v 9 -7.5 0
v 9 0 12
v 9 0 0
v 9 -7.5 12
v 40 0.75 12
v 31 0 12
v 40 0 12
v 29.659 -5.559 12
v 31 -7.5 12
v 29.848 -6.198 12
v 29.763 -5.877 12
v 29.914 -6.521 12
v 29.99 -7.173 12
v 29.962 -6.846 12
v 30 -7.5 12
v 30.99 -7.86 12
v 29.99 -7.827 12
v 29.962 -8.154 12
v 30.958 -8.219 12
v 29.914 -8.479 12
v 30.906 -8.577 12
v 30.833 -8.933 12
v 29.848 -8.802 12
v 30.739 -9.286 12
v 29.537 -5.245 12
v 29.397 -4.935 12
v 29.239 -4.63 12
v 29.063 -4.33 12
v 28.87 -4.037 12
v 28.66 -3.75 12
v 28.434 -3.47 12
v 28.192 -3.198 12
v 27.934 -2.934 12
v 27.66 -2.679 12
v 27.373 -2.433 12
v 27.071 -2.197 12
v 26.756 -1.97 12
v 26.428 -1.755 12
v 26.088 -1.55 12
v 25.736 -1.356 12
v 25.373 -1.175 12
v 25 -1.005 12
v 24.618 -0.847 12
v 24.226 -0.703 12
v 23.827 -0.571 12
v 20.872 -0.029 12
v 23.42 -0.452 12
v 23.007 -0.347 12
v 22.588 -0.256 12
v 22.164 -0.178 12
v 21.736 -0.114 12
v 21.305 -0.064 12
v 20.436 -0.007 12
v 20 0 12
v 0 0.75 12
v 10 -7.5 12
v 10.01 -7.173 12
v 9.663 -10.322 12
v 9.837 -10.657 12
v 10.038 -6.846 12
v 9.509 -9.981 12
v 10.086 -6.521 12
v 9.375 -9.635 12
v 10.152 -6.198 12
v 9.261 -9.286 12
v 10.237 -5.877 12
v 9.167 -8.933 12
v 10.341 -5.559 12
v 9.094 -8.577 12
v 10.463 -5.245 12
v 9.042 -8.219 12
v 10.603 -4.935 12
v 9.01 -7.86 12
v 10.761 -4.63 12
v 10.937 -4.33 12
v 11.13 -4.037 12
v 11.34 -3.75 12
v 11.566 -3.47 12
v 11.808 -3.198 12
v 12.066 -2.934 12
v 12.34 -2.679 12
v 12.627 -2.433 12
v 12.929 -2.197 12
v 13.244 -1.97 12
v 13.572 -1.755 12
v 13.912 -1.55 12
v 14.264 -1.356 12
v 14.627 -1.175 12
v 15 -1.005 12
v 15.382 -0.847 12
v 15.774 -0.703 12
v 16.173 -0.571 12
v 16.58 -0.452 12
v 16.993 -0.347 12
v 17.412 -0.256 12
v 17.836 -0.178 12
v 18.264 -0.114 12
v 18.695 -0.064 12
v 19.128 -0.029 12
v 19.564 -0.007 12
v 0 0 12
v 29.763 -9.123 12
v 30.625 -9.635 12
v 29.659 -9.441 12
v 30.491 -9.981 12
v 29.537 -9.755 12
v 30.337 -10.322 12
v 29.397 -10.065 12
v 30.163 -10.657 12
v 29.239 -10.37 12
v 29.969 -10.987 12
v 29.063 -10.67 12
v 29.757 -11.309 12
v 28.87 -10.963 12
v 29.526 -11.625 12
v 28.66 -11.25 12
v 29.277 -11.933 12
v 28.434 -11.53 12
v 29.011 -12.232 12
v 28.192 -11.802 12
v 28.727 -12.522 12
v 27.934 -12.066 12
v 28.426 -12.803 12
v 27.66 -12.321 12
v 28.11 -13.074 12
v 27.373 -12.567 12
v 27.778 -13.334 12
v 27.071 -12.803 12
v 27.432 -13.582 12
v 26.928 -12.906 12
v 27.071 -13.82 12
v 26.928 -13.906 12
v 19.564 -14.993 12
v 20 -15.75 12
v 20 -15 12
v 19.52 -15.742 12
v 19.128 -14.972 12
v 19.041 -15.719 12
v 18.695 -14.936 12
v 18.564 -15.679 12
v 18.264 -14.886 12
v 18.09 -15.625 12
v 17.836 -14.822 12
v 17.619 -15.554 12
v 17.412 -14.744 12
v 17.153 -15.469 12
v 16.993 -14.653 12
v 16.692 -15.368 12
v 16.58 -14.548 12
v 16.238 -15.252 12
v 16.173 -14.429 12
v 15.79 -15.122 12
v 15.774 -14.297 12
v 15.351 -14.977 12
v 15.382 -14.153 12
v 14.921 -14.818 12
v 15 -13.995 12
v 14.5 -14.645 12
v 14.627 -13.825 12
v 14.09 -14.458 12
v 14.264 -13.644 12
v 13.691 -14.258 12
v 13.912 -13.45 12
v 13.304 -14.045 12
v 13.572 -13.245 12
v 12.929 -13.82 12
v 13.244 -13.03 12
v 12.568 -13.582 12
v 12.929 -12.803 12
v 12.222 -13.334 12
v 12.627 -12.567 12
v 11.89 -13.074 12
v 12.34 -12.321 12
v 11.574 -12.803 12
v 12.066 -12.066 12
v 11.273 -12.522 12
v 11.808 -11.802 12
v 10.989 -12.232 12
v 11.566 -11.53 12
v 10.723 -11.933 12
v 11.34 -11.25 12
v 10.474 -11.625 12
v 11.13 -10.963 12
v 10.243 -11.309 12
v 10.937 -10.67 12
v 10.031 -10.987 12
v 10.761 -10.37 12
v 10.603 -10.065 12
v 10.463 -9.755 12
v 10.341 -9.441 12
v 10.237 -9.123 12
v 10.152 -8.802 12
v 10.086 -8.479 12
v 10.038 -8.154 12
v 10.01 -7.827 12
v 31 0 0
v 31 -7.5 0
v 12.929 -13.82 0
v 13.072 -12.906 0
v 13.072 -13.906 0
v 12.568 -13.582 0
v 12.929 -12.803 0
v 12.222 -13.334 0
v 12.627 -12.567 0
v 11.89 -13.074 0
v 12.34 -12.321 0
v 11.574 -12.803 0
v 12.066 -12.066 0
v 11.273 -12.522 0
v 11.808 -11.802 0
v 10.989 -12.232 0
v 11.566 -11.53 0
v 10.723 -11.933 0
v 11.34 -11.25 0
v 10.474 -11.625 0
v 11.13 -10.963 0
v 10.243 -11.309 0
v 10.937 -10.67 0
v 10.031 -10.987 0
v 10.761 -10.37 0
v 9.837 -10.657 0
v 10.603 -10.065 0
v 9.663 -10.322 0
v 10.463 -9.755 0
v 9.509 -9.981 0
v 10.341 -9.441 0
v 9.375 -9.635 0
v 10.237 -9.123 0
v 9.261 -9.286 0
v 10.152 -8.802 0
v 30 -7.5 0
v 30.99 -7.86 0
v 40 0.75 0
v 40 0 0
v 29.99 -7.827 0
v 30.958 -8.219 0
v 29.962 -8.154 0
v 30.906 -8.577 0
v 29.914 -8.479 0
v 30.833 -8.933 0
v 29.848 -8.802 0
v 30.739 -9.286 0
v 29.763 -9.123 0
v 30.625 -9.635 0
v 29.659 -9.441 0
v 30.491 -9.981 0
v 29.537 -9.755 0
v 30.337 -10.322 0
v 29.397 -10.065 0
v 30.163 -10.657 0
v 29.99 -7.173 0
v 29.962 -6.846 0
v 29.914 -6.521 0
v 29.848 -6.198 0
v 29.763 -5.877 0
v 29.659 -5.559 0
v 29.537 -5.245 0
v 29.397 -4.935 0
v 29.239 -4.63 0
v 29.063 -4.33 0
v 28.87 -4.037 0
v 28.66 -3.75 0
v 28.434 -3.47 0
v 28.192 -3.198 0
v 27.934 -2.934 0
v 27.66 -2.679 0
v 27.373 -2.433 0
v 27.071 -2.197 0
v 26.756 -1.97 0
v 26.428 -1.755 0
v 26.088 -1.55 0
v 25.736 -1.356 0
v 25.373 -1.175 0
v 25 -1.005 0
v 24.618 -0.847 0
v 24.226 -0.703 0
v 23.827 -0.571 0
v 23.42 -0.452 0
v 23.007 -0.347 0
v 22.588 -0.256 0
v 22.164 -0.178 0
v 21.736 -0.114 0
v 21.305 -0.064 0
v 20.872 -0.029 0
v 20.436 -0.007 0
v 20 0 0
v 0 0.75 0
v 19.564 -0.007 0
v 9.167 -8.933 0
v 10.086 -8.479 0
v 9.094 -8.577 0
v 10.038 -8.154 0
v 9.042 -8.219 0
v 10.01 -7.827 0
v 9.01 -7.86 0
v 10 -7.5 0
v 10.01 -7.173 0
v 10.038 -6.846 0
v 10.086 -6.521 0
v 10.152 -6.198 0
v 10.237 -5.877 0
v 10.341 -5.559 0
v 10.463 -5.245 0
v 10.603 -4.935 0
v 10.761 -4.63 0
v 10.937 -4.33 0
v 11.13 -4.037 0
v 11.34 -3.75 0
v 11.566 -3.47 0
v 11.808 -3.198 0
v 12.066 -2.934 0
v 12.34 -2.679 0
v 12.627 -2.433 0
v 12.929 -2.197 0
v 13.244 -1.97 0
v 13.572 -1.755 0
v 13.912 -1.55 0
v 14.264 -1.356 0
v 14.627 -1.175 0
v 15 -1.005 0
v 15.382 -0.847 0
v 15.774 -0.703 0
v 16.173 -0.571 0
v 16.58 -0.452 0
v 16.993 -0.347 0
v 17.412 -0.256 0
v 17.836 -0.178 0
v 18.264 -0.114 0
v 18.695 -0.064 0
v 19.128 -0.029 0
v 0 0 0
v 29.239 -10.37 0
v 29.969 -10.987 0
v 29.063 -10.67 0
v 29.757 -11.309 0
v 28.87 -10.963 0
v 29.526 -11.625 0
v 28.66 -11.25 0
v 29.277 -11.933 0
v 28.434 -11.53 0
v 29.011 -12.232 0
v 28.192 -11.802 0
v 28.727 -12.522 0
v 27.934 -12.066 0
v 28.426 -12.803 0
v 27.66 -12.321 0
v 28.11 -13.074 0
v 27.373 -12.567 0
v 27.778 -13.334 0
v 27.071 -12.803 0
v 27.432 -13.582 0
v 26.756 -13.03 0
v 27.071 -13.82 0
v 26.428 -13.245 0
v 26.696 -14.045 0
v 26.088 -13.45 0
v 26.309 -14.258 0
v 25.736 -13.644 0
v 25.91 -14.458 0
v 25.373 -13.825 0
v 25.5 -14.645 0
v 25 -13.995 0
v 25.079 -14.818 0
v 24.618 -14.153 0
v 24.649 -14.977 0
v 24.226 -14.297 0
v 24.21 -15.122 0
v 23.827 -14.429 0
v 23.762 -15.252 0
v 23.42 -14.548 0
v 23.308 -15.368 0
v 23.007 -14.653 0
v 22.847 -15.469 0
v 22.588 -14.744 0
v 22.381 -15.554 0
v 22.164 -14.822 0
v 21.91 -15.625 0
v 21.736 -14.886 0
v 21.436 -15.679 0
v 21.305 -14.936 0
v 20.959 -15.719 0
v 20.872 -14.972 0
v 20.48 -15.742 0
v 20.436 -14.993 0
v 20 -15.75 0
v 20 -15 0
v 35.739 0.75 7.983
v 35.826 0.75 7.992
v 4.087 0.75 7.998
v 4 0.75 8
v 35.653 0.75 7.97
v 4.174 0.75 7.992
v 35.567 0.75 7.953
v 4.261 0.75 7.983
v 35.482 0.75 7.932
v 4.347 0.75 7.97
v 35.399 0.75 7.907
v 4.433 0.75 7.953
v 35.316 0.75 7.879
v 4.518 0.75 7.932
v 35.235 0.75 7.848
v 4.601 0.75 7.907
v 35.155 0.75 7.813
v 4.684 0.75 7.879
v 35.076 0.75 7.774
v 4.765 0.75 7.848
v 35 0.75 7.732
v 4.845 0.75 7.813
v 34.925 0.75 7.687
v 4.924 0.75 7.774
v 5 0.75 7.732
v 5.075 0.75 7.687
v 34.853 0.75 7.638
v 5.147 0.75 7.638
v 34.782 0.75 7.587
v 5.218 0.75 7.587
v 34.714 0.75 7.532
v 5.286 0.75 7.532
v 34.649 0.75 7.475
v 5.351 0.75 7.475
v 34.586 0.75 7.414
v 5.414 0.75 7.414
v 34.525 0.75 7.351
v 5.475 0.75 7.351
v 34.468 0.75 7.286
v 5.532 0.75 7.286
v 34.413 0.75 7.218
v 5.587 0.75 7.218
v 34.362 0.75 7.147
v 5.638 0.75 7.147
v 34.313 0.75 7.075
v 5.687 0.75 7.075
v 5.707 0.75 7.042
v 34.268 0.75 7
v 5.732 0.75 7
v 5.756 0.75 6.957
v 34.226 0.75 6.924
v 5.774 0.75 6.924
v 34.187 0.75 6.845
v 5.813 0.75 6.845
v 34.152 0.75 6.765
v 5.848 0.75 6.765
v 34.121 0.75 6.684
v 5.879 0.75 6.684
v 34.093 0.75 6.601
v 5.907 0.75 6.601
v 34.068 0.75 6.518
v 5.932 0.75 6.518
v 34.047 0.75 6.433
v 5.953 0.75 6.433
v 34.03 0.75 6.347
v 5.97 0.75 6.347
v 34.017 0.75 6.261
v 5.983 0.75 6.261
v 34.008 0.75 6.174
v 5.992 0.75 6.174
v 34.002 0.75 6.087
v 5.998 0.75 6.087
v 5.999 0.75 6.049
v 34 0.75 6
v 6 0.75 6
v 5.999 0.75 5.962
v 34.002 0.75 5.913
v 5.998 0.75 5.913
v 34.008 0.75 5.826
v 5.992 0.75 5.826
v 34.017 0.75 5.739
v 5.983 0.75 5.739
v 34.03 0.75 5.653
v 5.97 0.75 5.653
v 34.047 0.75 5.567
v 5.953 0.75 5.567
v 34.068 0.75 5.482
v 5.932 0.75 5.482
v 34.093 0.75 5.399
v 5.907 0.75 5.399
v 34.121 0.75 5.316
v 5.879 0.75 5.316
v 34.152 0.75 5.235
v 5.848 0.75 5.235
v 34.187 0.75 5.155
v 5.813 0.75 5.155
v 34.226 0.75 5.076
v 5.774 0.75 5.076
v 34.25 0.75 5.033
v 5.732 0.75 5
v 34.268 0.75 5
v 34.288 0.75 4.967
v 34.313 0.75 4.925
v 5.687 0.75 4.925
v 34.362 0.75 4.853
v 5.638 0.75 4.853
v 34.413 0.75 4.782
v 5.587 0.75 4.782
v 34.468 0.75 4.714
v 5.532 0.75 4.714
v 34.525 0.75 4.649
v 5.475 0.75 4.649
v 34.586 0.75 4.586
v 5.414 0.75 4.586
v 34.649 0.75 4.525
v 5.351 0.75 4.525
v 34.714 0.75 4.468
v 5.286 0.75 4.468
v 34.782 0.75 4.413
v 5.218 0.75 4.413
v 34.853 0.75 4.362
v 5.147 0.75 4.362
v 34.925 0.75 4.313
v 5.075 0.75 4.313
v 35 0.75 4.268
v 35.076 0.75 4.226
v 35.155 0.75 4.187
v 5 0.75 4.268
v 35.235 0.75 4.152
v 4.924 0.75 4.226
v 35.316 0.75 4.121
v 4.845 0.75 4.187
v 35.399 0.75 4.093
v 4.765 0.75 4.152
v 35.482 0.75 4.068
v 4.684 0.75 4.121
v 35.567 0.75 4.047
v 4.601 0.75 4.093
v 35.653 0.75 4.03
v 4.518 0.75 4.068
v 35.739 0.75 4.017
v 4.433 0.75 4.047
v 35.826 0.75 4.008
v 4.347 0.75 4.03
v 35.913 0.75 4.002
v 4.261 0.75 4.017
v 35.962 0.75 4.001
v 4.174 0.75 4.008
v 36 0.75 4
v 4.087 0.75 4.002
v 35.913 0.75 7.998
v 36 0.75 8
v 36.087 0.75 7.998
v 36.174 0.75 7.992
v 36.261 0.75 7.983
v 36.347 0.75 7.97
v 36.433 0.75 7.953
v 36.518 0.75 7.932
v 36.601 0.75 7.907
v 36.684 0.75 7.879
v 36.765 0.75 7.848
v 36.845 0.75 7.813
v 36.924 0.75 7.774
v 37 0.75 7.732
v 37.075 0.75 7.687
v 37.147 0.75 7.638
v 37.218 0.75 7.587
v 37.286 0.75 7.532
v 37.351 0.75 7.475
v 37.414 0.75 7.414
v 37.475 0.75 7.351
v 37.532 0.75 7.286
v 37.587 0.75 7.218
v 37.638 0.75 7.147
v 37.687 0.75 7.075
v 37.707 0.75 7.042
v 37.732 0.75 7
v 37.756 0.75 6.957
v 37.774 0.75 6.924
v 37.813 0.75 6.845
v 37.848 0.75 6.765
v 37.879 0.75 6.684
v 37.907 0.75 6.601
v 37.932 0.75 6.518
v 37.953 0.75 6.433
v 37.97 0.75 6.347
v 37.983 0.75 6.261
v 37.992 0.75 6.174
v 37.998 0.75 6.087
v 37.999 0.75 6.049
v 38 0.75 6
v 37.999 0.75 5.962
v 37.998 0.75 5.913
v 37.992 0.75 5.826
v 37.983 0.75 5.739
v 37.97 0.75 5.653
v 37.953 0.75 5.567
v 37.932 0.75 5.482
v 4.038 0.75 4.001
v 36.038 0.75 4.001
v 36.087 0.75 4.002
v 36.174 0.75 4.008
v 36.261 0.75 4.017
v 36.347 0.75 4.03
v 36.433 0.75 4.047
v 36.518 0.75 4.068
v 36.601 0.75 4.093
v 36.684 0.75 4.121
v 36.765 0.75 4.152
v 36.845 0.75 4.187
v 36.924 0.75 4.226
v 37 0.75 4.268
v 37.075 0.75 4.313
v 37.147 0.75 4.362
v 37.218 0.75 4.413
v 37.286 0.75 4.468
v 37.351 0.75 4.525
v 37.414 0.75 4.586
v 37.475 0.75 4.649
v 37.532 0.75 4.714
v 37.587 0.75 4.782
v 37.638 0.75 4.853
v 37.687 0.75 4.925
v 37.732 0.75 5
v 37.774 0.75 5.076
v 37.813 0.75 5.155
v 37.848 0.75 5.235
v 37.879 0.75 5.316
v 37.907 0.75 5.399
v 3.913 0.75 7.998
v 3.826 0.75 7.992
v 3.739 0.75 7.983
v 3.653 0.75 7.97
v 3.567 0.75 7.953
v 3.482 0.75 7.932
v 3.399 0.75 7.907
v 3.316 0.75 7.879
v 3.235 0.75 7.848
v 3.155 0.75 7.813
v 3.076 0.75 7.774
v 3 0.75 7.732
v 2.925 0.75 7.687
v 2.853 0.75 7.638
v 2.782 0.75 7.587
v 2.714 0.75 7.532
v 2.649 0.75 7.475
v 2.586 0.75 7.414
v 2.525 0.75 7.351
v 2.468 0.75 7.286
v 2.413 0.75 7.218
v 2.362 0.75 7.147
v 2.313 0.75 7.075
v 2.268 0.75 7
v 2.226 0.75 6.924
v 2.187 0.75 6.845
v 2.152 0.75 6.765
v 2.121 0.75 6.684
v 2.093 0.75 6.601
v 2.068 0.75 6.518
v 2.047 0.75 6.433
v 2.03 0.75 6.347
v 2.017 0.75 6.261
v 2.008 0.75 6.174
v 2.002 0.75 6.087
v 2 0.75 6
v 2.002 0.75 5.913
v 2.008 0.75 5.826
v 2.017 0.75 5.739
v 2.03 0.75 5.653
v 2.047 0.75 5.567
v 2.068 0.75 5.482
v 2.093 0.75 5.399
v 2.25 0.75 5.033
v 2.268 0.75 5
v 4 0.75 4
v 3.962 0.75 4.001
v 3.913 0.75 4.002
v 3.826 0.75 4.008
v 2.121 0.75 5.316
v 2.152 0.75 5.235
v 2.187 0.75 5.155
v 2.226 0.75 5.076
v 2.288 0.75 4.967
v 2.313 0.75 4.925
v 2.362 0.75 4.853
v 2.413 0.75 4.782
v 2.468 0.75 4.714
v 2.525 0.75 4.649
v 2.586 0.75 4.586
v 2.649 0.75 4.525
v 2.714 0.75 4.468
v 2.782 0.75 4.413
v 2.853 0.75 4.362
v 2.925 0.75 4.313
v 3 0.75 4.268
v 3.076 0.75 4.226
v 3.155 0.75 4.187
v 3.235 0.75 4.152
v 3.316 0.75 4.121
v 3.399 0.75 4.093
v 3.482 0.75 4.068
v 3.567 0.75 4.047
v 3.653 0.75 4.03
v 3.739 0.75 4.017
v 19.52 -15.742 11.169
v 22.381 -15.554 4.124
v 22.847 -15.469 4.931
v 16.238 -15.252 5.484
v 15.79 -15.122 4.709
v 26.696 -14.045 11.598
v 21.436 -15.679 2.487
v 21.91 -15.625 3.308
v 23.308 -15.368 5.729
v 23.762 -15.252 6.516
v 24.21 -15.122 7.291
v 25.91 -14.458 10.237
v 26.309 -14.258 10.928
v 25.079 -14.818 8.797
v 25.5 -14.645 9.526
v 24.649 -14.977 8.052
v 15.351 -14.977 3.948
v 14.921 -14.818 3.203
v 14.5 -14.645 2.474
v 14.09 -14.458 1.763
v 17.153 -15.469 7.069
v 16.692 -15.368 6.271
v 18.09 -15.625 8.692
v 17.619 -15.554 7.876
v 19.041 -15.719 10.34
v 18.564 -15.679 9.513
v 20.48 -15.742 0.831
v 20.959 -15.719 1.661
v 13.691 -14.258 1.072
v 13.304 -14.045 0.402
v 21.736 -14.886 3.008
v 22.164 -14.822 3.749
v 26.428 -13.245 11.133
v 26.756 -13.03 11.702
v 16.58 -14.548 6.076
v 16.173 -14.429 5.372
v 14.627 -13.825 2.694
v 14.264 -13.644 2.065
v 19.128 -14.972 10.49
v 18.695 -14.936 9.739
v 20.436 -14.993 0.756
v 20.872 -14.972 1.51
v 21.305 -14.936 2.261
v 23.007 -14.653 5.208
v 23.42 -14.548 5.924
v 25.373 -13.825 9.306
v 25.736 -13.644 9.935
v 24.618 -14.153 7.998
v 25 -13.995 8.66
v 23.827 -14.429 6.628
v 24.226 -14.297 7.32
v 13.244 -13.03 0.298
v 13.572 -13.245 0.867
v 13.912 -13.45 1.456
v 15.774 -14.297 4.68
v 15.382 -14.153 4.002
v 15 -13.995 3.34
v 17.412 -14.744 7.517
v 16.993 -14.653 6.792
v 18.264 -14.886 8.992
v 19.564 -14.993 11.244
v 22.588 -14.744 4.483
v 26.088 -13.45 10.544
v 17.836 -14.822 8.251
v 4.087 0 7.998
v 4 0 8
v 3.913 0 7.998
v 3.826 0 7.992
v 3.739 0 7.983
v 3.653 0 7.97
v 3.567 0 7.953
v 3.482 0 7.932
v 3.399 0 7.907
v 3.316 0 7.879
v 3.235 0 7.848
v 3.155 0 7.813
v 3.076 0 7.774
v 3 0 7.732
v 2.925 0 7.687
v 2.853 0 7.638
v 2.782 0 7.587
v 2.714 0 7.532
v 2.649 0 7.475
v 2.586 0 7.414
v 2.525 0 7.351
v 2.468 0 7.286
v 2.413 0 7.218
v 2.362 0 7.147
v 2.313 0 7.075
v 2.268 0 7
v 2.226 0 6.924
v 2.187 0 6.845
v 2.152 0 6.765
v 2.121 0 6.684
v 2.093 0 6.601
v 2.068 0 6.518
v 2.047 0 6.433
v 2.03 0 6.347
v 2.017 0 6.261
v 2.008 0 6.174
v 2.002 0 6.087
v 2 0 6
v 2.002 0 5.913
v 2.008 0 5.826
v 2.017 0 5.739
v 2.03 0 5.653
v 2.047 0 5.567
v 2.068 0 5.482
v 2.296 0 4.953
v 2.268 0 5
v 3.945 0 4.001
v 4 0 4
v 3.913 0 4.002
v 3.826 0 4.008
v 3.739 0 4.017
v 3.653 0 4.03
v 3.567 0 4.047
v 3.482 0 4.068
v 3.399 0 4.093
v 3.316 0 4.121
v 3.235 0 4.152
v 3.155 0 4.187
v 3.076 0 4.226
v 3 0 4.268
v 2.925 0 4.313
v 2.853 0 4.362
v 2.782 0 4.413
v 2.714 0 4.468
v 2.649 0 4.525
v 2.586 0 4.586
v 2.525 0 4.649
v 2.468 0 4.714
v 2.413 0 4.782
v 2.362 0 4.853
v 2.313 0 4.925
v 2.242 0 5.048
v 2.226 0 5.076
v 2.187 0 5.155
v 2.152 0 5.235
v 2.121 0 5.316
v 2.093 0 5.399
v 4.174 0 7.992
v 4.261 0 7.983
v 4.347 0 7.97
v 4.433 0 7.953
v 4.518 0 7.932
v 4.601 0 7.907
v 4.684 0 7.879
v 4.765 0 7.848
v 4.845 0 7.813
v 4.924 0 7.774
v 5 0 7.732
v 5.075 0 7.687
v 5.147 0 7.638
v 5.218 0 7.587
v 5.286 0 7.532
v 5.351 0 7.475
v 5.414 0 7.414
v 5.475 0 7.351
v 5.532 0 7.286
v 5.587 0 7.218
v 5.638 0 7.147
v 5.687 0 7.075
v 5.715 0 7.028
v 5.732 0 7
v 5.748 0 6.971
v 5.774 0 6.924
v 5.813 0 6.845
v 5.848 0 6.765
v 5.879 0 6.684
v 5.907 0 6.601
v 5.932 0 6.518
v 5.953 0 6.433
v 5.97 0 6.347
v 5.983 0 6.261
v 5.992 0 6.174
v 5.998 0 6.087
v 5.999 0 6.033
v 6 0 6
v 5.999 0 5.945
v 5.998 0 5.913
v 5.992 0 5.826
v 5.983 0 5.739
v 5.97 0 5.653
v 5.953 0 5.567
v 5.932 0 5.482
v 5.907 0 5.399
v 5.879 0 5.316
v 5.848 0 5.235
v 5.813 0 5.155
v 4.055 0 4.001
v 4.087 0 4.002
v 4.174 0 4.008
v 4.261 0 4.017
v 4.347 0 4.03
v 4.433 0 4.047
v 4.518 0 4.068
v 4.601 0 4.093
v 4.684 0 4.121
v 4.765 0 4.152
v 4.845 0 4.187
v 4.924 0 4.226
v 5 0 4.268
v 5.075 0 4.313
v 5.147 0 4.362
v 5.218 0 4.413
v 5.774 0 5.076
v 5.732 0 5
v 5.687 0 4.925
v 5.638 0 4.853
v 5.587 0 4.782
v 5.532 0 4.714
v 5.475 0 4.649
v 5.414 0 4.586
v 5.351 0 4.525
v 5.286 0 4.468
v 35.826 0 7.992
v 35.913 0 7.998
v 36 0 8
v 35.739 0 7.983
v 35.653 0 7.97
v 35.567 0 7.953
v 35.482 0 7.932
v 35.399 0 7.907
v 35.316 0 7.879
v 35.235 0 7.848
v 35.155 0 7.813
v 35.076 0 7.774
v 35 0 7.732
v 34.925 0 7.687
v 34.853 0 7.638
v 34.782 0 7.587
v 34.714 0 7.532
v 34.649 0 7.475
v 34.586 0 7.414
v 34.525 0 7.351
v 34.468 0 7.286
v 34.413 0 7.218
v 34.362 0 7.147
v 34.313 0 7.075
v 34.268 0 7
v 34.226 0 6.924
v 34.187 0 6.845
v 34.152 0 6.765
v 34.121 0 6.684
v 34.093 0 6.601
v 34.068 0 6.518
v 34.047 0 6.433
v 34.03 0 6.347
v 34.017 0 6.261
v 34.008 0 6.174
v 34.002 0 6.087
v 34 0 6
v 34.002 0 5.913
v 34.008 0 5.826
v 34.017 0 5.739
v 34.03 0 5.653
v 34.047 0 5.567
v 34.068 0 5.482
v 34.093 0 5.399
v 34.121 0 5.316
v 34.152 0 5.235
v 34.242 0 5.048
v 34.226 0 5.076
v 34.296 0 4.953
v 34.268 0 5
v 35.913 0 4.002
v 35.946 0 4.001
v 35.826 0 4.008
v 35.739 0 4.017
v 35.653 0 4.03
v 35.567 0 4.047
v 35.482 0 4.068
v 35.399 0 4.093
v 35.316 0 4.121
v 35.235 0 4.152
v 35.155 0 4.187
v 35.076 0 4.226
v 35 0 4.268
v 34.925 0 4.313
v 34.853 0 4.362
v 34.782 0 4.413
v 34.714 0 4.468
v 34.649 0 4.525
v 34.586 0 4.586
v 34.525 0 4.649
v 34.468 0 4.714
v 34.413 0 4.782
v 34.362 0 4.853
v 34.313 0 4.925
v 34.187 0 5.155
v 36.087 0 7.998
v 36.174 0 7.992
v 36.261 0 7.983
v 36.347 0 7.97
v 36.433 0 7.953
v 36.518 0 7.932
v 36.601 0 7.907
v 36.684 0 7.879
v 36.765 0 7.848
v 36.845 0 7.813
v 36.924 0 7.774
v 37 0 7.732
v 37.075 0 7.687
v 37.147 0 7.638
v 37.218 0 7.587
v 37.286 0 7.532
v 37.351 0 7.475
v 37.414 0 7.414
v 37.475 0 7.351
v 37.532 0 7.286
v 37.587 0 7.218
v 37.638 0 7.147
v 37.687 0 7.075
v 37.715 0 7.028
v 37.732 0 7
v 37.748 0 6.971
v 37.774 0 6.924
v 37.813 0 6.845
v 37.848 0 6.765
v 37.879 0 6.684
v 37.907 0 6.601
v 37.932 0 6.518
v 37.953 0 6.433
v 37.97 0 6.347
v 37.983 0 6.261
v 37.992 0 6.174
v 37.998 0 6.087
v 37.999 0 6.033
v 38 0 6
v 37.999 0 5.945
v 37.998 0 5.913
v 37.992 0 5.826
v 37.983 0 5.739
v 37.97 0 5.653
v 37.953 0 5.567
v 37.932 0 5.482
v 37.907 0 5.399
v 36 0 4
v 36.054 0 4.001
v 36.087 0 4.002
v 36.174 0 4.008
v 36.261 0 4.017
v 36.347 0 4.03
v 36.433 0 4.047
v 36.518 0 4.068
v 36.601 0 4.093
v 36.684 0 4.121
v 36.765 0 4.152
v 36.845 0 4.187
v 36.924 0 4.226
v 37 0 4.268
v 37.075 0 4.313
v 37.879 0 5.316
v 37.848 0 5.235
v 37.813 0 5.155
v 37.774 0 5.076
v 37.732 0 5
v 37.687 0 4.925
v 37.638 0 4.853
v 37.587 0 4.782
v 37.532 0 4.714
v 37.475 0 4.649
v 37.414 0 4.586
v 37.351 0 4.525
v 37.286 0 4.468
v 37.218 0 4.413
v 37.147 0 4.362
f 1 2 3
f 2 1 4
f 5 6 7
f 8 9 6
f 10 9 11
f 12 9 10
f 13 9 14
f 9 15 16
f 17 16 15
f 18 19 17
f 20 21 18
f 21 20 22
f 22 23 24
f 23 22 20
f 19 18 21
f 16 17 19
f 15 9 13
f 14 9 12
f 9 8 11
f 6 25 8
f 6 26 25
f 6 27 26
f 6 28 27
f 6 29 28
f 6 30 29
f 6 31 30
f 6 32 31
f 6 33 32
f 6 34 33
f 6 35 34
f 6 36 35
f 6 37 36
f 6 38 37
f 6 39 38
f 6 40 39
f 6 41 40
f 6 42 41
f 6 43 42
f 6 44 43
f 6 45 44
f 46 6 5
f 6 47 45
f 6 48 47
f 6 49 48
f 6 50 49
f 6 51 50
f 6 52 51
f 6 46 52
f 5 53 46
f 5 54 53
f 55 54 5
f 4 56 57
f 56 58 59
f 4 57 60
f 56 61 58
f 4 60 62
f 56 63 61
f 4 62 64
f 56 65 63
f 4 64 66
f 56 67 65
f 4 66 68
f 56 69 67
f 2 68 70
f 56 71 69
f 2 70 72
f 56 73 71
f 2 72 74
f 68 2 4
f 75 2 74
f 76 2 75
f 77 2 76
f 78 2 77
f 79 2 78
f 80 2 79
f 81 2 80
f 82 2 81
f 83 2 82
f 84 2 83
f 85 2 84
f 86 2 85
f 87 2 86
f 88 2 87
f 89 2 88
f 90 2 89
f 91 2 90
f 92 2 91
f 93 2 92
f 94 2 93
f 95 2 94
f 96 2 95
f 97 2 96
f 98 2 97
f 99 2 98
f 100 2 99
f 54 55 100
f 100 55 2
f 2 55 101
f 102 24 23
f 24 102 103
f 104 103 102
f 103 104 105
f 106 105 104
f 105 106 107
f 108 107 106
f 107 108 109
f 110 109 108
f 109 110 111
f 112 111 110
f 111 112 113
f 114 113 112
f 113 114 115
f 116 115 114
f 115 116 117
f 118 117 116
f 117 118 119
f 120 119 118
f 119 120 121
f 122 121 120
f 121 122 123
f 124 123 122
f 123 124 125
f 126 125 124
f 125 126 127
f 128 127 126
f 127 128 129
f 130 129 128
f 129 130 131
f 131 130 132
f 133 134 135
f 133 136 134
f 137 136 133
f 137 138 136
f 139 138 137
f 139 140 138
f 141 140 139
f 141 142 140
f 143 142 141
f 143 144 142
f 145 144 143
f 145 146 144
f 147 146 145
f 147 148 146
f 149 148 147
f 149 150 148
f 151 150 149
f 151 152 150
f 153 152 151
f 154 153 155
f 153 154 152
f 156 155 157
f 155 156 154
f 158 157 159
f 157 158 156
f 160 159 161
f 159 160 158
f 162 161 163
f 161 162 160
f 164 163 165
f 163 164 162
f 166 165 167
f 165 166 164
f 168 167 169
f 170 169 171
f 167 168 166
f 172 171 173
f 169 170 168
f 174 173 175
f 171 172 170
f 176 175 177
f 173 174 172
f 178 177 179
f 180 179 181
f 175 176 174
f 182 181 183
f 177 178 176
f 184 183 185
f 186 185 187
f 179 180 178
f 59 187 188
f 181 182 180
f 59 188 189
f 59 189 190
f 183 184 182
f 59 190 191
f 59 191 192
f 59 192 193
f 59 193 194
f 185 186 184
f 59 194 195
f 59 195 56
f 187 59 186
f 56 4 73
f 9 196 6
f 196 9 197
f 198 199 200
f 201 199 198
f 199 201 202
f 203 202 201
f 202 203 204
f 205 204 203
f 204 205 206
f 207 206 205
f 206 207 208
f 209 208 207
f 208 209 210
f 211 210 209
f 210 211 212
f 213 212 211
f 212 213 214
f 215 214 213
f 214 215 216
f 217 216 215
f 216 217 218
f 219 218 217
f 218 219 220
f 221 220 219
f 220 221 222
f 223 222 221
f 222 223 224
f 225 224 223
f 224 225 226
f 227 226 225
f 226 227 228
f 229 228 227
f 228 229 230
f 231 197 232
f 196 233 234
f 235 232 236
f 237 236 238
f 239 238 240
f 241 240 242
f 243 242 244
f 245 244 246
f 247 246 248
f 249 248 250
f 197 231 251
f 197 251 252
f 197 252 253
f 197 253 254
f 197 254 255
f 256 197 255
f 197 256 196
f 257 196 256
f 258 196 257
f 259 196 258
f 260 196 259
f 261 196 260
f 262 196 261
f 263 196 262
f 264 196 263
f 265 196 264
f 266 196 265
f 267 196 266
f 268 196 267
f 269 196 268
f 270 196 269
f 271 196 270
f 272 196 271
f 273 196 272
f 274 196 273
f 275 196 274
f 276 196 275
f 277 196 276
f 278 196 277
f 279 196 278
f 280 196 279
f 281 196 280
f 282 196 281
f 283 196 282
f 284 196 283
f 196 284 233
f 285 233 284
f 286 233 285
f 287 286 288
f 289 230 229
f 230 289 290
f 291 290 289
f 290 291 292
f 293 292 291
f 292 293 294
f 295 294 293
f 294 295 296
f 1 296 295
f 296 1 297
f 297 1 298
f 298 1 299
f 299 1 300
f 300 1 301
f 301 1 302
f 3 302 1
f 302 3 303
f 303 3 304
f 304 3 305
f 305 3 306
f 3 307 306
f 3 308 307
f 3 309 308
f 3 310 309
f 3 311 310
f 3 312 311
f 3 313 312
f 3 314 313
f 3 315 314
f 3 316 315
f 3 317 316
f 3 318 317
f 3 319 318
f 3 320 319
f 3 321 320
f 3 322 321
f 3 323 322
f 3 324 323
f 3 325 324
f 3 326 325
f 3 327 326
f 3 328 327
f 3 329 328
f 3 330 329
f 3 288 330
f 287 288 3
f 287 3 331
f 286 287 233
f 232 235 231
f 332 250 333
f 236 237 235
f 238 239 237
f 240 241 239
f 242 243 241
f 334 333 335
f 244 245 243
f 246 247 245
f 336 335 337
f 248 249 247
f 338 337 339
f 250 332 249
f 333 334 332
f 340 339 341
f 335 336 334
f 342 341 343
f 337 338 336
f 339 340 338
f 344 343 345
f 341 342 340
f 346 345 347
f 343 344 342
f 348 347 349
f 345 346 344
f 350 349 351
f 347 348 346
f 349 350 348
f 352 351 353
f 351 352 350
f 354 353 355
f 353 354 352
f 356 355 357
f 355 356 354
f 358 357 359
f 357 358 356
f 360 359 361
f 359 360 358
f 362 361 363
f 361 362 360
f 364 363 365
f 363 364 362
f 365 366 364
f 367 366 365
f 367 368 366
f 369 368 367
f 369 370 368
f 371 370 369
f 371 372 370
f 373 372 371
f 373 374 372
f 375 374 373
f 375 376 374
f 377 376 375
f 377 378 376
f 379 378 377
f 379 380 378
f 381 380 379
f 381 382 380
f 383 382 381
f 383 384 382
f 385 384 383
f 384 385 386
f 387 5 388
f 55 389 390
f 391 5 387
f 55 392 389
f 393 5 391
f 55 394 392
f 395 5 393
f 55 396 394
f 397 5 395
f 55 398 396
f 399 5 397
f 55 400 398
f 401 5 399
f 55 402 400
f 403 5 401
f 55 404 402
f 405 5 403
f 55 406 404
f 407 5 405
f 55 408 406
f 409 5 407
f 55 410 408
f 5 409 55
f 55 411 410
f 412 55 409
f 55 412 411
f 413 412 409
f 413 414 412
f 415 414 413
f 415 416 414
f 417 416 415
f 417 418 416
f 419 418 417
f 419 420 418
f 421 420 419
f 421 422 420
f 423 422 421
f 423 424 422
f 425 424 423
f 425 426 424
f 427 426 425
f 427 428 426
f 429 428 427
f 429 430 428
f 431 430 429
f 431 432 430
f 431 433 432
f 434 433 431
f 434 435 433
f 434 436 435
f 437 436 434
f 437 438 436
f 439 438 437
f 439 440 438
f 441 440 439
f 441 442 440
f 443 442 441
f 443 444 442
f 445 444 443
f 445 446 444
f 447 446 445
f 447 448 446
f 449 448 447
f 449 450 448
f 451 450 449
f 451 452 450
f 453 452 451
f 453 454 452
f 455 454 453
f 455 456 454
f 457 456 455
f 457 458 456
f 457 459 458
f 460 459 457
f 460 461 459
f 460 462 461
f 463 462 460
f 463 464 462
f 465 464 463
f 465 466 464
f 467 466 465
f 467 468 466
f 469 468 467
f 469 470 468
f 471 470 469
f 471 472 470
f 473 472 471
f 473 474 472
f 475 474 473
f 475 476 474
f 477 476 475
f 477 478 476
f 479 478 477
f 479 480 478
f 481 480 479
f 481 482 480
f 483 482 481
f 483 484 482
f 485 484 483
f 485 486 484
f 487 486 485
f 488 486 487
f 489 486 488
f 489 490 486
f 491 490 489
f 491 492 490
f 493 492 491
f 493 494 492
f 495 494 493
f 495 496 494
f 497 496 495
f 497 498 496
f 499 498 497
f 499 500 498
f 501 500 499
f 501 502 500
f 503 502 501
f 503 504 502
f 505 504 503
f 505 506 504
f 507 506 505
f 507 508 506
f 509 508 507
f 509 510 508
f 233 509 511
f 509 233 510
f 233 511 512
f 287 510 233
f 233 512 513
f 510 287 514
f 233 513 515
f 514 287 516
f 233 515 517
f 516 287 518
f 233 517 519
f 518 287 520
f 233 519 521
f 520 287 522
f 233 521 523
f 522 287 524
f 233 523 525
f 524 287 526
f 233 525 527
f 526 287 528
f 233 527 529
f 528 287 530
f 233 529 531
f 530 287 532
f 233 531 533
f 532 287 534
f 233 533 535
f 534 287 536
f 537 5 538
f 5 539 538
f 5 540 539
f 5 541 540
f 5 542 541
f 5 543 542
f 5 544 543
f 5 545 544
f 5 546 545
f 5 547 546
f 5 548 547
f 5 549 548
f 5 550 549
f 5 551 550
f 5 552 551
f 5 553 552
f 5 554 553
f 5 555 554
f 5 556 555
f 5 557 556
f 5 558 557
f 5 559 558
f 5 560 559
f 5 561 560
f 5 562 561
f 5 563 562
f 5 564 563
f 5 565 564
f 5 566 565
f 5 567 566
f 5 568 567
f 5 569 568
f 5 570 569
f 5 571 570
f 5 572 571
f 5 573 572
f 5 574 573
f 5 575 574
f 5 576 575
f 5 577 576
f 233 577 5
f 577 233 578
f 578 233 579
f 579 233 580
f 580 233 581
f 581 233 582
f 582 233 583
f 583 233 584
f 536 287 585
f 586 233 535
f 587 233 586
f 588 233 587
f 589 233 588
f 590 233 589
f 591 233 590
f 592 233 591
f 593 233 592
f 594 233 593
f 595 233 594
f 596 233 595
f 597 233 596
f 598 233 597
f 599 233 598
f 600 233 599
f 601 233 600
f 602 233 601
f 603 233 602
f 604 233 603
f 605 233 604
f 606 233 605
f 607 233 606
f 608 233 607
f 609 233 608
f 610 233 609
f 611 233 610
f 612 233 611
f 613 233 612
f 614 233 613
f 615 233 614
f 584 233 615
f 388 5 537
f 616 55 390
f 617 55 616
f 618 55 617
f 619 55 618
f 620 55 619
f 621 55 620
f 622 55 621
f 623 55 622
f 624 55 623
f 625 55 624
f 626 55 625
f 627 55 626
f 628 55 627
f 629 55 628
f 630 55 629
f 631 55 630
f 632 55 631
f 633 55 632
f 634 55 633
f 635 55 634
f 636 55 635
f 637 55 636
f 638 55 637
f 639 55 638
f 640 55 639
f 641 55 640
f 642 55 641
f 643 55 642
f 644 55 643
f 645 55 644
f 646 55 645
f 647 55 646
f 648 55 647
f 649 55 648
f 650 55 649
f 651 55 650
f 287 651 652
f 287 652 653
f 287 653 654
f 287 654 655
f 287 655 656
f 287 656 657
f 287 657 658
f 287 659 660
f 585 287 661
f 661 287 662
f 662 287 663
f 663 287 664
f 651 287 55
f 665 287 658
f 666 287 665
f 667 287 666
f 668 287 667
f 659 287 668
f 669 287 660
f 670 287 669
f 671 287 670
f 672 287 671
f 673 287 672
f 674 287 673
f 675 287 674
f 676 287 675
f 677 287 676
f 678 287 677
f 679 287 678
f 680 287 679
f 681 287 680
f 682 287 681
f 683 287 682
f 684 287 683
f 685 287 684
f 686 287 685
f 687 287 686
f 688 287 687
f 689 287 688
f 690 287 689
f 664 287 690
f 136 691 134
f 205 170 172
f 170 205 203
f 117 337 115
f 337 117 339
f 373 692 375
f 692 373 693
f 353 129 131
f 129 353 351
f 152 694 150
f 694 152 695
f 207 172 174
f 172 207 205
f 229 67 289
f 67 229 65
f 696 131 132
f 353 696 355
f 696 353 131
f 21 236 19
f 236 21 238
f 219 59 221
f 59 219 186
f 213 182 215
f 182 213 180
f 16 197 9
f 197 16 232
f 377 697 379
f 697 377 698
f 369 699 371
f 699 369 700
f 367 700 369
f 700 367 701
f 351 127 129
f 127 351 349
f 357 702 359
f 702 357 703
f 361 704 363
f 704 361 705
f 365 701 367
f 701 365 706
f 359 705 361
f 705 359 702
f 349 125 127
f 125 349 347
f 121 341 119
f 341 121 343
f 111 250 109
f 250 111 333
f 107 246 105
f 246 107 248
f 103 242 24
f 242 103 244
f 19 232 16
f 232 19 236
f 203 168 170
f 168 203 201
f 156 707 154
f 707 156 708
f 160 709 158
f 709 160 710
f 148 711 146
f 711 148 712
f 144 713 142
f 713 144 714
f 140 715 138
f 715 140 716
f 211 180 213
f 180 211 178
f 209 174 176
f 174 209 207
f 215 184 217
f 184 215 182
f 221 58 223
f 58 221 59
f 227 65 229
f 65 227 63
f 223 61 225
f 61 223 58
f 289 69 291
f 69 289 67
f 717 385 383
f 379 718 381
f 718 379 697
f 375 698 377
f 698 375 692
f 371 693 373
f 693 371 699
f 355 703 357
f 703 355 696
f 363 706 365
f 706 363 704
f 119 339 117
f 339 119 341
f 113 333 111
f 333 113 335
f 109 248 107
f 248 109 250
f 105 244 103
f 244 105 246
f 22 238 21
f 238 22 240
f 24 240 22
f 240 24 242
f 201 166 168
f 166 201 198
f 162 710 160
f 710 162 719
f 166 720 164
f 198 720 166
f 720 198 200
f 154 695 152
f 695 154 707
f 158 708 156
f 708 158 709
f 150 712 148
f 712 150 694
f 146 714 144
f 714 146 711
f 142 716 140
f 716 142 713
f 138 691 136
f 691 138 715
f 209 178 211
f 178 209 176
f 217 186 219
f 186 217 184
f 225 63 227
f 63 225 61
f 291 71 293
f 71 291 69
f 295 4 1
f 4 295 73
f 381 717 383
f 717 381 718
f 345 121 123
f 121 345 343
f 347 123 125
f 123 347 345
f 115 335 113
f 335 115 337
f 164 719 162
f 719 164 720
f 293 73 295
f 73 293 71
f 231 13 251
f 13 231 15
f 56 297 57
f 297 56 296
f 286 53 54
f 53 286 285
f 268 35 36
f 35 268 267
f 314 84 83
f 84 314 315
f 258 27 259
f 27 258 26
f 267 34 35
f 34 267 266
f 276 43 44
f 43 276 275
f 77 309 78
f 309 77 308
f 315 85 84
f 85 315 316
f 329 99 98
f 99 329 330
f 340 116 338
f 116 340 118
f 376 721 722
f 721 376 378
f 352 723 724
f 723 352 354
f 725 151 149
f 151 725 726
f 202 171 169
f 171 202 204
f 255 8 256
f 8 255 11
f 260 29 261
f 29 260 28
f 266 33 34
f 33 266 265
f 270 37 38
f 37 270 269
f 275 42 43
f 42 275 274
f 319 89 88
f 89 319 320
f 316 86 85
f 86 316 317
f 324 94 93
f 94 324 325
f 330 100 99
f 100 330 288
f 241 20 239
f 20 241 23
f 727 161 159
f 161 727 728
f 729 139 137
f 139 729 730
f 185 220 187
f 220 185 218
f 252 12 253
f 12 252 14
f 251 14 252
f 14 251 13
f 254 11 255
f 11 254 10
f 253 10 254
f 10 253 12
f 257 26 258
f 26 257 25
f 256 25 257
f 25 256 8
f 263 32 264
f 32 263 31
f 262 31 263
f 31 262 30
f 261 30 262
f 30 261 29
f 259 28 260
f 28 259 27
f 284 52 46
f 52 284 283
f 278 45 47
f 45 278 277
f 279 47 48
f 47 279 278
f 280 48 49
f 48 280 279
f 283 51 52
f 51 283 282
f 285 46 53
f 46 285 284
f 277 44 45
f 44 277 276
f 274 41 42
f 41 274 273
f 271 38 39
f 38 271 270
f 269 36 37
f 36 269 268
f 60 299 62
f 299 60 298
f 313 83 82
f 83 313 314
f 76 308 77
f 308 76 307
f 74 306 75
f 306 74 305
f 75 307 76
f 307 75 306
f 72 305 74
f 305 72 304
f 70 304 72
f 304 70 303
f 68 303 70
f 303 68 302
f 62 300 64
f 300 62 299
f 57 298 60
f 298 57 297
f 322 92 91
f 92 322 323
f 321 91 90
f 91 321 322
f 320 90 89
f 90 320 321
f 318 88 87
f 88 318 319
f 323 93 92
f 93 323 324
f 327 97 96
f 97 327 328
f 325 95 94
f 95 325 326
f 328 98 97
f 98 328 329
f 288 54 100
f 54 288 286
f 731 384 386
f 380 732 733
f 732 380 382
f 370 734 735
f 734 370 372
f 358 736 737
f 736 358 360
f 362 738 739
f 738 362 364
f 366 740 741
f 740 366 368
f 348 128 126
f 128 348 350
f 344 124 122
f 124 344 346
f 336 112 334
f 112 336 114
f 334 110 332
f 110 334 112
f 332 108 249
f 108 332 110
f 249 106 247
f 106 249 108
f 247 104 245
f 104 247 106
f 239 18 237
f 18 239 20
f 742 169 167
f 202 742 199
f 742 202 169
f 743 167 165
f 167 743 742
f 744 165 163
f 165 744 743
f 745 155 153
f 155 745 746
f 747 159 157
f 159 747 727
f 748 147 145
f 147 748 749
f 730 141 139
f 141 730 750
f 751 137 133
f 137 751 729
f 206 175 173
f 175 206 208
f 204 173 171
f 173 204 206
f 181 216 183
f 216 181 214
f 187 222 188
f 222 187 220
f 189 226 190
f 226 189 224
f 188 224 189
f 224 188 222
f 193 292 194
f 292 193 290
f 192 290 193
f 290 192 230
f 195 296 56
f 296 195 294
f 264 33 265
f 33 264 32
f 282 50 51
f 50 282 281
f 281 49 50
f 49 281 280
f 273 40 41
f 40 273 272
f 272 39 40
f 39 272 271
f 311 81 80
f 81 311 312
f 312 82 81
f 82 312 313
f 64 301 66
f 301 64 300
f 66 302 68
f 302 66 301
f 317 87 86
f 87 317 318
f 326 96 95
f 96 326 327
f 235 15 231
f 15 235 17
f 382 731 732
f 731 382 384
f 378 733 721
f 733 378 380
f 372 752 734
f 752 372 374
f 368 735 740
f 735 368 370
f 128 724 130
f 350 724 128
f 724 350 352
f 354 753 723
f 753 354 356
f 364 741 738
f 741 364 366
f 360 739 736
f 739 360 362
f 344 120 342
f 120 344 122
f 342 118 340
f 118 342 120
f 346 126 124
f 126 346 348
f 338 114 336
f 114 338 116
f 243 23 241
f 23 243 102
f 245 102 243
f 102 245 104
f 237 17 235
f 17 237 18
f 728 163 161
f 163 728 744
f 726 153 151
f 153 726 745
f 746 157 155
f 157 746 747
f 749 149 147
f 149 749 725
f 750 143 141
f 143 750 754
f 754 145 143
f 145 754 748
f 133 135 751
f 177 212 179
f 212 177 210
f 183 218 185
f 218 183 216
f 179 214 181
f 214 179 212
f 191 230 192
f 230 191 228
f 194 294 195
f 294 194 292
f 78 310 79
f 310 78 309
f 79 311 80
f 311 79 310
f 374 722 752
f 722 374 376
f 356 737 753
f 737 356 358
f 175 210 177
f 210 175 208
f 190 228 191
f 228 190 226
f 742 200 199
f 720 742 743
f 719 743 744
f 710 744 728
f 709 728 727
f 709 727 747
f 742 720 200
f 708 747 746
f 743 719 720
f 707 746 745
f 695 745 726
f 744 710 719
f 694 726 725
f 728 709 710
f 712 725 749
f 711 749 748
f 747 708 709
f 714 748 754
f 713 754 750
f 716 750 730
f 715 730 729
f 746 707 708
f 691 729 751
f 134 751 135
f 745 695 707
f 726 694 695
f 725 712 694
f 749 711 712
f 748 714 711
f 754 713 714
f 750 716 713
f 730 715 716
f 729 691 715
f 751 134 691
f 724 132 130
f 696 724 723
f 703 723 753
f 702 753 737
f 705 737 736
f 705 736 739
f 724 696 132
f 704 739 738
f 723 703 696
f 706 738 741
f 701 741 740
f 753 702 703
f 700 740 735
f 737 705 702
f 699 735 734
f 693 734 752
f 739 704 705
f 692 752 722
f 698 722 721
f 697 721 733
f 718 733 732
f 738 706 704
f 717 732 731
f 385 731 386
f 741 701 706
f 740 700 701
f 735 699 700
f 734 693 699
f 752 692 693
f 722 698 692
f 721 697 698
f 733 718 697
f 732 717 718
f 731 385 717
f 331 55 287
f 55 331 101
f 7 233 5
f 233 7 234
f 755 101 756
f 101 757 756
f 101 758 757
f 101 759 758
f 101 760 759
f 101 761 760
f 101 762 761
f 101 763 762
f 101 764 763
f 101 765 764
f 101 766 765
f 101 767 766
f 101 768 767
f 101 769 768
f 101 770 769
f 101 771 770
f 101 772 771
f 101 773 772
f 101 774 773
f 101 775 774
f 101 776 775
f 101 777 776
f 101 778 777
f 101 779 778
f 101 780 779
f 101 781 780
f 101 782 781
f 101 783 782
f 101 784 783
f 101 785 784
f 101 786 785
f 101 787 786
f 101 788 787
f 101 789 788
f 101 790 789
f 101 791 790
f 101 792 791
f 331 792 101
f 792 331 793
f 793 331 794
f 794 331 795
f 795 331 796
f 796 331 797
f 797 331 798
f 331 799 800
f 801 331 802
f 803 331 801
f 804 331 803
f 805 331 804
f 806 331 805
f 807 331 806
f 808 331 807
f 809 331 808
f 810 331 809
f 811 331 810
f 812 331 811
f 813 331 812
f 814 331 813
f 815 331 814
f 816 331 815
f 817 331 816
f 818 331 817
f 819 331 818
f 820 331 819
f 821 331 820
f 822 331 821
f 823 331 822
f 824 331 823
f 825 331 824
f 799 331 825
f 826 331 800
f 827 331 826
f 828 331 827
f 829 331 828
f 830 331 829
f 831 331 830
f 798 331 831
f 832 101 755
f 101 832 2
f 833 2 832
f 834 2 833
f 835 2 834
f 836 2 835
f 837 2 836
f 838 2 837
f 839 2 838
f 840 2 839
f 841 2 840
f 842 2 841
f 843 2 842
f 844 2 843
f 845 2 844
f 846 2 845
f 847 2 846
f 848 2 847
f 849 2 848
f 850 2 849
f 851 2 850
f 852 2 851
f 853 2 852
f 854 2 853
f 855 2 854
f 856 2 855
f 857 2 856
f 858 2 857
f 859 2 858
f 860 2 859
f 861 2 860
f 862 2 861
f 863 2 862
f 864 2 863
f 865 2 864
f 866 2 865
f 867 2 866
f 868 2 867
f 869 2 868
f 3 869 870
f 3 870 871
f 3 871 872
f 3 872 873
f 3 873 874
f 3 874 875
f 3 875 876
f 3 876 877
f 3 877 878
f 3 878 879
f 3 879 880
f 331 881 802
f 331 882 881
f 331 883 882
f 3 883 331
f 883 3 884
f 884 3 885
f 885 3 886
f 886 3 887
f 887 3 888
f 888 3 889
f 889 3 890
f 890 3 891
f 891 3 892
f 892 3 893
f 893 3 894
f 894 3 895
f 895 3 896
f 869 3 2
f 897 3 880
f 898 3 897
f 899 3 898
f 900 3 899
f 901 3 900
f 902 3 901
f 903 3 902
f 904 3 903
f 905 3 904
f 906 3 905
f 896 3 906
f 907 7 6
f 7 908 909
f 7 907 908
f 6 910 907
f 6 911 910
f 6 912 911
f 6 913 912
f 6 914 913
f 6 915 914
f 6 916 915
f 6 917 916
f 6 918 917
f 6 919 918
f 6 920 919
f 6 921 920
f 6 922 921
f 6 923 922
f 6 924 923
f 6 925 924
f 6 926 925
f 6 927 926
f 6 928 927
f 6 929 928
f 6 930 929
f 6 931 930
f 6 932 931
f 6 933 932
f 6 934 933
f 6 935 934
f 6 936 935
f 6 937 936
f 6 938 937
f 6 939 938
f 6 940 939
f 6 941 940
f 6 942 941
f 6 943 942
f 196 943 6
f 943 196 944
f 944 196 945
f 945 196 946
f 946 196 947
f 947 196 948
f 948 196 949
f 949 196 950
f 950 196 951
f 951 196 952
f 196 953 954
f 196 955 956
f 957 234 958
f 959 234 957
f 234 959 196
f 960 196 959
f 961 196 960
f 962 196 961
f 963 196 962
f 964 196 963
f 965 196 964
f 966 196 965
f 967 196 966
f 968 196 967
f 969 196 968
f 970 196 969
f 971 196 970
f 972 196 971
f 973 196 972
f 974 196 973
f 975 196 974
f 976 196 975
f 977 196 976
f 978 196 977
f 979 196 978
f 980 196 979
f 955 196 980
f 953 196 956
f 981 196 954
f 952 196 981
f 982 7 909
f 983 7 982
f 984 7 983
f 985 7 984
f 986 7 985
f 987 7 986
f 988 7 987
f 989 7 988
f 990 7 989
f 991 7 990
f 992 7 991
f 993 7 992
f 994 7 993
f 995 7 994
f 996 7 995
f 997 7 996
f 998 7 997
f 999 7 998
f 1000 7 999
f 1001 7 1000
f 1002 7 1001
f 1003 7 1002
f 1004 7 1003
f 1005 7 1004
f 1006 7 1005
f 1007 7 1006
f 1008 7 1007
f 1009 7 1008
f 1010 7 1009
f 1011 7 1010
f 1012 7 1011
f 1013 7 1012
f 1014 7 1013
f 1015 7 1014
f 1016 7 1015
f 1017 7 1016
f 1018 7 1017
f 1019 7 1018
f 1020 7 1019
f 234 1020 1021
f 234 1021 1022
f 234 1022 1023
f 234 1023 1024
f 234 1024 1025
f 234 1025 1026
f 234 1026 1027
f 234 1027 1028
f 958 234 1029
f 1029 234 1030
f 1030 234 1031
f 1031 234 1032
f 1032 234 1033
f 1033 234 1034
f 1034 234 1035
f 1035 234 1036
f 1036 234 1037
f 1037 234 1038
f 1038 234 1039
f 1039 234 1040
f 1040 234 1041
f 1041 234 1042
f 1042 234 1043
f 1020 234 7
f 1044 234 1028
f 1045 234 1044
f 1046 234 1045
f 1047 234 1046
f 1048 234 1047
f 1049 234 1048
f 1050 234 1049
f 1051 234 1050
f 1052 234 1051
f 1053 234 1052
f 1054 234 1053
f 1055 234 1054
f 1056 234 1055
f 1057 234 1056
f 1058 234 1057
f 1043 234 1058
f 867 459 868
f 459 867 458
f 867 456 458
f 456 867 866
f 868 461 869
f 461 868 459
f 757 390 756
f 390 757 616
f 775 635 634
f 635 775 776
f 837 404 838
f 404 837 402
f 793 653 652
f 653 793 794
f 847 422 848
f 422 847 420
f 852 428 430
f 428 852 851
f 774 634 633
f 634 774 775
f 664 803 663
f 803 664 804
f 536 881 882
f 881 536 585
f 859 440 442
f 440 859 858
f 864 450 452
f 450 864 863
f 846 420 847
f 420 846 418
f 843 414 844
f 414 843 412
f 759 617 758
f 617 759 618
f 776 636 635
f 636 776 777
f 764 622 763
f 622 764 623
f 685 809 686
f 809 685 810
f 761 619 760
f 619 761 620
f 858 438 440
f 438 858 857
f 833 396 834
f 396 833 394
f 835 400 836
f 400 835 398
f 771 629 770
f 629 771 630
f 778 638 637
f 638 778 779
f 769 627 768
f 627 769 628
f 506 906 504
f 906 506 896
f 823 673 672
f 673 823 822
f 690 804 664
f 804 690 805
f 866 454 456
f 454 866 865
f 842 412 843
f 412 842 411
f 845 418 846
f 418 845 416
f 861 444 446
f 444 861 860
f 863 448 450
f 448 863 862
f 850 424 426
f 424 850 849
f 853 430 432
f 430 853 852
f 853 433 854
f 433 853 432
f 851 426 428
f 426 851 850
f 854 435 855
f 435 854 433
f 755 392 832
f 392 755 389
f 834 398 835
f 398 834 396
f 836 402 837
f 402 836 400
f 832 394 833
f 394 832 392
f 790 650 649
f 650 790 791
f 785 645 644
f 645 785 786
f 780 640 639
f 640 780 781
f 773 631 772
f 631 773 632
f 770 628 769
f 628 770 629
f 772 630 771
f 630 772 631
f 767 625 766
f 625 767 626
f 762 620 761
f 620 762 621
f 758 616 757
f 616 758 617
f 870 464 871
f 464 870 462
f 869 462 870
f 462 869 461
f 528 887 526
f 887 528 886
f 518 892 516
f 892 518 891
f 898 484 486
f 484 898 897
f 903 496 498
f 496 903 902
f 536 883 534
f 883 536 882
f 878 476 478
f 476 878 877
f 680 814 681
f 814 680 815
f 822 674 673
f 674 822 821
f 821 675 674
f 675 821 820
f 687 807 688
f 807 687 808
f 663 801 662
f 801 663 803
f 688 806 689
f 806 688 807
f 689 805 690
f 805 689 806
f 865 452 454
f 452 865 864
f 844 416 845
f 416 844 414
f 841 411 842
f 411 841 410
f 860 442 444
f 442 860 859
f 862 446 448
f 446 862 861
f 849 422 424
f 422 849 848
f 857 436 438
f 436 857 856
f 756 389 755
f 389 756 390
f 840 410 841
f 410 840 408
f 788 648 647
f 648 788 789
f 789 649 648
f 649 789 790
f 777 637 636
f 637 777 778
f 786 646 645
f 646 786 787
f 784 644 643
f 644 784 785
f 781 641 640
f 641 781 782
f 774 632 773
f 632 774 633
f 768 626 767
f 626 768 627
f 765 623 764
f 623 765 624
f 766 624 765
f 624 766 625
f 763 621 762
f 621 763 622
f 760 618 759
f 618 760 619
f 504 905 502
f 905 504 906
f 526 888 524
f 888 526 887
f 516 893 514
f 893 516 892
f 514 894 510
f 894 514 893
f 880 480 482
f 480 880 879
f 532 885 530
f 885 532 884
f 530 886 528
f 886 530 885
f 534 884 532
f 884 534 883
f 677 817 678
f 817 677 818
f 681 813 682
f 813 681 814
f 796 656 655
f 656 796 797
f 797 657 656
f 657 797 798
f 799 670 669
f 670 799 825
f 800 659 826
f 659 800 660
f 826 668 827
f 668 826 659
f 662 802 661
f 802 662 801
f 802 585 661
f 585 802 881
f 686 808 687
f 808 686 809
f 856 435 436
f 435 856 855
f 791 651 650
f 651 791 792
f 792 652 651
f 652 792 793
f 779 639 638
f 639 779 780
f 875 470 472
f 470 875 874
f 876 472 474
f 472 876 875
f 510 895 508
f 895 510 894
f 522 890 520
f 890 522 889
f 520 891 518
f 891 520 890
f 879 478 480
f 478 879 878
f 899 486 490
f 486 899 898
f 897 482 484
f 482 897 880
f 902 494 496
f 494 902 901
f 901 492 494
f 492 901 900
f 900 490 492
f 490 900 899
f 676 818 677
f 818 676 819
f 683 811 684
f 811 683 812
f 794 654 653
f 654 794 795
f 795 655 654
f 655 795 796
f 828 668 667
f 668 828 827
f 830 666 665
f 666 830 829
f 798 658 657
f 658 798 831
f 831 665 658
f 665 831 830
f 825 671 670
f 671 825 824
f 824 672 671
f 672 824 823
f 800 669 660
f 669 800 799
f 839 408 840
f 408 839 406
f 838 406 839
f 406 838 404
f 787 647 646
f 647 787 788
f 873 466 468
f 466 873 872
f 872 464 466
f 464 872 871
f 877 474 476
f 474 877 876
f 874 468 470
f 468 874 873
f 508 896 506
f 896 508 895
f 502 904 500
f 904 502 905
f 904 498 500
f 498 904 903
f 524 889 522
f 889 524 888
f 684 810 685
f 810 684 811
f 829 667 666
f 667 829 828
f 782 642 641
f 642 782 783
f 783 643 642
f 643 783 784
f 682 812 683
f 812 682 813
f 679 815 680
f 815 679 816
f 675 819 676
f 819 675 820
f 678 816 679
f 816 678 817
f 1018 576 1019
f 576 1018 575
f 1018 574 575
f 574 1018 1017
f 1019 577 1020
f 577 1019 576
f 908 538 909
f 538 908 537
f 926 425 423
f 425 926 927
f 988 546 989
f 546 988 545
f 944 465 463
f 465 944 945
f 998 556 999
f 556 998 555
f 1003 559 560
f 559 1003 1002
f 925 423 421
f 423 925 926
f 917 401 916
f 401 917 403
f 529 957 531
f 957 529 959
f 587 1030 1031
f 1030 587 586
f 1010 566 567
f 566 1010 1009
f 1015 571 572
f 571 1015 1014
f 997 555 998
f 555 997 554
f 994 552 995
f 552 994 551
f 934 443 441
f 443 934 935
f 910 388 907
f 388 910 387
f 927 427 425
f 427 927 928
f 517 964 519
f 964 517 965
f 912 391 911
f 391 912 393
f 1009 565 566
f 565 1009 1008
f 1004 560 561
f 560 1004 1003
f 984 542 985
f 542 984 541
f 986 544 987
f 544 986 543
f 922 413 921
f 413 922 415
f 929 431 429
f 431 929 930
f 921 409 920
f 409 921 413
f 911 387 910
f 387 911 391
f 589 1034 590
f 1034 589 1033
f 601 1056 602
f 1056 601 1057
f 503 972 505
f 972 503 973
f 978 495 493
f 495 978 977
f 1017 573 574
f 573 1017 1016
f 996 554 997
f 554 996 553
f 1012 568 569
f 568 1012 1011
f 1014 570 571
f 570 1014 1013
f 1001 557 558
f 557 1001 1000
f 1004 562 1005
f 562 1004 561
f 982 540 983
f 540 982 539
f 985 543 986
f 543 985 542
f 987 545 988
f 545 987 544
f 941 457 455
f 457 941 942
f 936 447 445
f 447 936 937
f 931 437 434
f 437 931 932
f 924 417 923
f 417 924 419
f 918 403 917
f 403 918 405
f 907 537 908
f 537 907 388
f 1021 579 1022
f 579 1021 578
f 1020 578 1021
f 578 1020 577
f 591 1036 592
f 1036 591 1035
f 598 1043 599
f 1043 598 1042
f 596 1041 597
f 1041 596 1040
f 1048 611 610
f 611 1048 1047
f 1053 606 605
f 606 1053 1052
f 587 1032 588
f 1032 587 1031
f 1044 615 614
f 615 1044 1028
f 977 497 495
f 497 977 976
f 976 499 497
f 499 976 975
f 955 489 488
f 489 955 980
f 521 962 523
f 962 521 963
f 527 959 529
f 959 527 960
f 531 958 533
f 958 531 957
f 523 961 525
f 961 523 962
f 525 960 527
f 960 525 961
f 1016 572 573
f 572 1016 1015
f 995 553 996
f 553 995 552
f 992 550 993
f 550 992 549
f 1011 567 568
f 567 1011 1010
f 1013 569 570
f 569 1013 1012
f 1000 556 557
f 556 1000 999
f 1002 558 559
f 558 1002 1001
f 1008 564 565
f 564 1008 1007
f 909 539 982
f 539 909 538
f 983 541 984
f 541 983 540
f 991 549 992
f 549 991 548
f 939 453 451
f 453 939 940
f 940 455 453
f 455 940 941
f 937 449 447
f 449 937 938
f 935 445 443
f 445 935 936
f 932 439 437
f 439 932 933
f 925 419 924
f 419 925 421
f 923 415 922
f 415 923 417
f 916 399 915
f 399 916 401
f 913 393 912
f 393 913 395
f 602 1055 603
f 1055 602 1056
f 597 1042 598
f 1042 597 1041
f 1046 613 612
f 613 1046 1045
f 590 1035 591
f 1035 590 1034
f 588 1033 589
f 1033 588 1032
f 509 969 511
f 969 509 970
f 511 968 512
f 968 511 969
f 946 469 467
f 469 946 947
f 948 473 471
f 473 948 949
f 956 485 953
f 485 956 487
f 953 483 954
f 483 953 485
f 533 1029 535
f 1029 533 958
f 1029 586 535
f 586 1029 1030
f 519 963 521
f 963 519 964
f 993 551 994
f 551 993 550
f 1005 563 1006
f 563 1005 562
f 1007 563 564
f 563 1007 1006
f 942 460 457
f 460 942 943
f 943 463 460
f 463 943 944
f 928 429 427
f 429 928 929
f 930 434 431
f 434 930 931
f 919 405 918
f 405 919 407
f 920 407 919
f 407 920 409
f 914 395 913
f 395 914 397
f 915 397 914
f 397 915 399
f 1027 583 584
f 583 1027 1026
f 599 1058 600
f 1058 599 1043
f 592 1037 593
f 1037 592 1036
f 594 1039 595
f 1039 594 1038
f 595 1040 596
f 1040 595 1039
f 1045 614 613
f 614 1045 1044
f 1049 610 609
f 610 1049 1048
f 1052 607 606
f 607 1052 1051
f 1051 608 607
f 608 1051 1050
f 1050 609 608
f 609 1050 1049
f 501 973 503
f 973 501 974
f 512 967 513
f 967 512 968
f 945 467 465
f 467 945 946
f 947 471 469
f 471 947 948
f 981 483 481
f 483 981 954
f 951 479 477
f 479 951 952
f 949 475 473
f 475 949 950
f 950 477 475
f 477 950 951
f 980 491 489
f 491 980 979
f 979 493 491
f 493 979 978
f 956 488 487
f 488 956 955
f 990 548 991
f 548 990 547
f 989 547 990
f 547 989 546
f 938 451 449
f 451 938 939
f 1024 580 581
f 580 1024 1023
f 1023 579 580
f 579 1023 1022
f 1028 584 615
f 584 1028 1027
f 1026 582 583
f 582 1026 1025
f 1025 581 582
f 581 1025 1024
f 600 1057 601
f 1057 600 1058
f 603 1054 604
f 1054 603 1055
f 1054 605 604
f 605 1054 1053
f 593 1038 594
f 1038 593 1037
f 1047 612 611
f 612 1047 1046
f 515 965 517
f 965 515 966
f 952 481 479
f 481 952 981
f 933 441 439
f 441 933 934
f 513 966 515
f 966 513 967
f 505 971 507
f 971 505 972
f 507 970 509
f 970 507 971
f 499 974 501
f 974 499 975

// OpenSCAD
width=12;
holeOffset = 8;
holeRadius = 2;

holeFacets = 144;

height=40;
flagRadius = 10;

difference() {
    scale([1,0.75,1])
    union() {
        cube([40,1,width]);
        translate([20,-(flagRadius),0])
            Holder();
    }

    translate([4,0,6])
    rotate([90,0,0])
    translate([0,0,-2.5])
    cylinder(r=holeRadius, h=4, $fn = holeFacets);

    translate([36,0,6])
    rotate([90,0,0])
    translate([0,0,-2.5])
    cylinder(r=holeRadius, h=4, $fn = holeFacets);
}

module Holder() {
    difference() {
        union() {
        translate([-(flagRadius+1),0,0])
            cube([2*(flagRadius+1),(flagRadius+1),width]);
            cylinder(r=flagRadius+1,h=width,$fn=holeFacets);
        }
        
        translate([0,0,-2])
        cylinder(r=flagRadius, h=width+4, $fn=holeFacets);
        
        translate([0,-flagRadius,width/2])
        rotate([0,30,0])
        cube([6,flagRadius,width+8],center=true);
    }
}

module Holes() {
    translate([holeOffset,0,0])
        cylinder(r=holeRadius,h=2*sliderDepth, center=true, $fn=holeFacets);
    translate([-holeOffset,0,0])
        cylinder(r=holeRadius,h=2*sliderDepth, center=true, $fn=holeFacets);
    translate([0,holeOffset,0])
        cylinder(r=holeRadius,h=2*sliderDepth, center=true, $fn=holeFacets);
    translate([0,-holeOffset,0])
        cylinder(r=holeRadius,h=2*sliderDepth, center=true, $fn=holeFacets);
}
